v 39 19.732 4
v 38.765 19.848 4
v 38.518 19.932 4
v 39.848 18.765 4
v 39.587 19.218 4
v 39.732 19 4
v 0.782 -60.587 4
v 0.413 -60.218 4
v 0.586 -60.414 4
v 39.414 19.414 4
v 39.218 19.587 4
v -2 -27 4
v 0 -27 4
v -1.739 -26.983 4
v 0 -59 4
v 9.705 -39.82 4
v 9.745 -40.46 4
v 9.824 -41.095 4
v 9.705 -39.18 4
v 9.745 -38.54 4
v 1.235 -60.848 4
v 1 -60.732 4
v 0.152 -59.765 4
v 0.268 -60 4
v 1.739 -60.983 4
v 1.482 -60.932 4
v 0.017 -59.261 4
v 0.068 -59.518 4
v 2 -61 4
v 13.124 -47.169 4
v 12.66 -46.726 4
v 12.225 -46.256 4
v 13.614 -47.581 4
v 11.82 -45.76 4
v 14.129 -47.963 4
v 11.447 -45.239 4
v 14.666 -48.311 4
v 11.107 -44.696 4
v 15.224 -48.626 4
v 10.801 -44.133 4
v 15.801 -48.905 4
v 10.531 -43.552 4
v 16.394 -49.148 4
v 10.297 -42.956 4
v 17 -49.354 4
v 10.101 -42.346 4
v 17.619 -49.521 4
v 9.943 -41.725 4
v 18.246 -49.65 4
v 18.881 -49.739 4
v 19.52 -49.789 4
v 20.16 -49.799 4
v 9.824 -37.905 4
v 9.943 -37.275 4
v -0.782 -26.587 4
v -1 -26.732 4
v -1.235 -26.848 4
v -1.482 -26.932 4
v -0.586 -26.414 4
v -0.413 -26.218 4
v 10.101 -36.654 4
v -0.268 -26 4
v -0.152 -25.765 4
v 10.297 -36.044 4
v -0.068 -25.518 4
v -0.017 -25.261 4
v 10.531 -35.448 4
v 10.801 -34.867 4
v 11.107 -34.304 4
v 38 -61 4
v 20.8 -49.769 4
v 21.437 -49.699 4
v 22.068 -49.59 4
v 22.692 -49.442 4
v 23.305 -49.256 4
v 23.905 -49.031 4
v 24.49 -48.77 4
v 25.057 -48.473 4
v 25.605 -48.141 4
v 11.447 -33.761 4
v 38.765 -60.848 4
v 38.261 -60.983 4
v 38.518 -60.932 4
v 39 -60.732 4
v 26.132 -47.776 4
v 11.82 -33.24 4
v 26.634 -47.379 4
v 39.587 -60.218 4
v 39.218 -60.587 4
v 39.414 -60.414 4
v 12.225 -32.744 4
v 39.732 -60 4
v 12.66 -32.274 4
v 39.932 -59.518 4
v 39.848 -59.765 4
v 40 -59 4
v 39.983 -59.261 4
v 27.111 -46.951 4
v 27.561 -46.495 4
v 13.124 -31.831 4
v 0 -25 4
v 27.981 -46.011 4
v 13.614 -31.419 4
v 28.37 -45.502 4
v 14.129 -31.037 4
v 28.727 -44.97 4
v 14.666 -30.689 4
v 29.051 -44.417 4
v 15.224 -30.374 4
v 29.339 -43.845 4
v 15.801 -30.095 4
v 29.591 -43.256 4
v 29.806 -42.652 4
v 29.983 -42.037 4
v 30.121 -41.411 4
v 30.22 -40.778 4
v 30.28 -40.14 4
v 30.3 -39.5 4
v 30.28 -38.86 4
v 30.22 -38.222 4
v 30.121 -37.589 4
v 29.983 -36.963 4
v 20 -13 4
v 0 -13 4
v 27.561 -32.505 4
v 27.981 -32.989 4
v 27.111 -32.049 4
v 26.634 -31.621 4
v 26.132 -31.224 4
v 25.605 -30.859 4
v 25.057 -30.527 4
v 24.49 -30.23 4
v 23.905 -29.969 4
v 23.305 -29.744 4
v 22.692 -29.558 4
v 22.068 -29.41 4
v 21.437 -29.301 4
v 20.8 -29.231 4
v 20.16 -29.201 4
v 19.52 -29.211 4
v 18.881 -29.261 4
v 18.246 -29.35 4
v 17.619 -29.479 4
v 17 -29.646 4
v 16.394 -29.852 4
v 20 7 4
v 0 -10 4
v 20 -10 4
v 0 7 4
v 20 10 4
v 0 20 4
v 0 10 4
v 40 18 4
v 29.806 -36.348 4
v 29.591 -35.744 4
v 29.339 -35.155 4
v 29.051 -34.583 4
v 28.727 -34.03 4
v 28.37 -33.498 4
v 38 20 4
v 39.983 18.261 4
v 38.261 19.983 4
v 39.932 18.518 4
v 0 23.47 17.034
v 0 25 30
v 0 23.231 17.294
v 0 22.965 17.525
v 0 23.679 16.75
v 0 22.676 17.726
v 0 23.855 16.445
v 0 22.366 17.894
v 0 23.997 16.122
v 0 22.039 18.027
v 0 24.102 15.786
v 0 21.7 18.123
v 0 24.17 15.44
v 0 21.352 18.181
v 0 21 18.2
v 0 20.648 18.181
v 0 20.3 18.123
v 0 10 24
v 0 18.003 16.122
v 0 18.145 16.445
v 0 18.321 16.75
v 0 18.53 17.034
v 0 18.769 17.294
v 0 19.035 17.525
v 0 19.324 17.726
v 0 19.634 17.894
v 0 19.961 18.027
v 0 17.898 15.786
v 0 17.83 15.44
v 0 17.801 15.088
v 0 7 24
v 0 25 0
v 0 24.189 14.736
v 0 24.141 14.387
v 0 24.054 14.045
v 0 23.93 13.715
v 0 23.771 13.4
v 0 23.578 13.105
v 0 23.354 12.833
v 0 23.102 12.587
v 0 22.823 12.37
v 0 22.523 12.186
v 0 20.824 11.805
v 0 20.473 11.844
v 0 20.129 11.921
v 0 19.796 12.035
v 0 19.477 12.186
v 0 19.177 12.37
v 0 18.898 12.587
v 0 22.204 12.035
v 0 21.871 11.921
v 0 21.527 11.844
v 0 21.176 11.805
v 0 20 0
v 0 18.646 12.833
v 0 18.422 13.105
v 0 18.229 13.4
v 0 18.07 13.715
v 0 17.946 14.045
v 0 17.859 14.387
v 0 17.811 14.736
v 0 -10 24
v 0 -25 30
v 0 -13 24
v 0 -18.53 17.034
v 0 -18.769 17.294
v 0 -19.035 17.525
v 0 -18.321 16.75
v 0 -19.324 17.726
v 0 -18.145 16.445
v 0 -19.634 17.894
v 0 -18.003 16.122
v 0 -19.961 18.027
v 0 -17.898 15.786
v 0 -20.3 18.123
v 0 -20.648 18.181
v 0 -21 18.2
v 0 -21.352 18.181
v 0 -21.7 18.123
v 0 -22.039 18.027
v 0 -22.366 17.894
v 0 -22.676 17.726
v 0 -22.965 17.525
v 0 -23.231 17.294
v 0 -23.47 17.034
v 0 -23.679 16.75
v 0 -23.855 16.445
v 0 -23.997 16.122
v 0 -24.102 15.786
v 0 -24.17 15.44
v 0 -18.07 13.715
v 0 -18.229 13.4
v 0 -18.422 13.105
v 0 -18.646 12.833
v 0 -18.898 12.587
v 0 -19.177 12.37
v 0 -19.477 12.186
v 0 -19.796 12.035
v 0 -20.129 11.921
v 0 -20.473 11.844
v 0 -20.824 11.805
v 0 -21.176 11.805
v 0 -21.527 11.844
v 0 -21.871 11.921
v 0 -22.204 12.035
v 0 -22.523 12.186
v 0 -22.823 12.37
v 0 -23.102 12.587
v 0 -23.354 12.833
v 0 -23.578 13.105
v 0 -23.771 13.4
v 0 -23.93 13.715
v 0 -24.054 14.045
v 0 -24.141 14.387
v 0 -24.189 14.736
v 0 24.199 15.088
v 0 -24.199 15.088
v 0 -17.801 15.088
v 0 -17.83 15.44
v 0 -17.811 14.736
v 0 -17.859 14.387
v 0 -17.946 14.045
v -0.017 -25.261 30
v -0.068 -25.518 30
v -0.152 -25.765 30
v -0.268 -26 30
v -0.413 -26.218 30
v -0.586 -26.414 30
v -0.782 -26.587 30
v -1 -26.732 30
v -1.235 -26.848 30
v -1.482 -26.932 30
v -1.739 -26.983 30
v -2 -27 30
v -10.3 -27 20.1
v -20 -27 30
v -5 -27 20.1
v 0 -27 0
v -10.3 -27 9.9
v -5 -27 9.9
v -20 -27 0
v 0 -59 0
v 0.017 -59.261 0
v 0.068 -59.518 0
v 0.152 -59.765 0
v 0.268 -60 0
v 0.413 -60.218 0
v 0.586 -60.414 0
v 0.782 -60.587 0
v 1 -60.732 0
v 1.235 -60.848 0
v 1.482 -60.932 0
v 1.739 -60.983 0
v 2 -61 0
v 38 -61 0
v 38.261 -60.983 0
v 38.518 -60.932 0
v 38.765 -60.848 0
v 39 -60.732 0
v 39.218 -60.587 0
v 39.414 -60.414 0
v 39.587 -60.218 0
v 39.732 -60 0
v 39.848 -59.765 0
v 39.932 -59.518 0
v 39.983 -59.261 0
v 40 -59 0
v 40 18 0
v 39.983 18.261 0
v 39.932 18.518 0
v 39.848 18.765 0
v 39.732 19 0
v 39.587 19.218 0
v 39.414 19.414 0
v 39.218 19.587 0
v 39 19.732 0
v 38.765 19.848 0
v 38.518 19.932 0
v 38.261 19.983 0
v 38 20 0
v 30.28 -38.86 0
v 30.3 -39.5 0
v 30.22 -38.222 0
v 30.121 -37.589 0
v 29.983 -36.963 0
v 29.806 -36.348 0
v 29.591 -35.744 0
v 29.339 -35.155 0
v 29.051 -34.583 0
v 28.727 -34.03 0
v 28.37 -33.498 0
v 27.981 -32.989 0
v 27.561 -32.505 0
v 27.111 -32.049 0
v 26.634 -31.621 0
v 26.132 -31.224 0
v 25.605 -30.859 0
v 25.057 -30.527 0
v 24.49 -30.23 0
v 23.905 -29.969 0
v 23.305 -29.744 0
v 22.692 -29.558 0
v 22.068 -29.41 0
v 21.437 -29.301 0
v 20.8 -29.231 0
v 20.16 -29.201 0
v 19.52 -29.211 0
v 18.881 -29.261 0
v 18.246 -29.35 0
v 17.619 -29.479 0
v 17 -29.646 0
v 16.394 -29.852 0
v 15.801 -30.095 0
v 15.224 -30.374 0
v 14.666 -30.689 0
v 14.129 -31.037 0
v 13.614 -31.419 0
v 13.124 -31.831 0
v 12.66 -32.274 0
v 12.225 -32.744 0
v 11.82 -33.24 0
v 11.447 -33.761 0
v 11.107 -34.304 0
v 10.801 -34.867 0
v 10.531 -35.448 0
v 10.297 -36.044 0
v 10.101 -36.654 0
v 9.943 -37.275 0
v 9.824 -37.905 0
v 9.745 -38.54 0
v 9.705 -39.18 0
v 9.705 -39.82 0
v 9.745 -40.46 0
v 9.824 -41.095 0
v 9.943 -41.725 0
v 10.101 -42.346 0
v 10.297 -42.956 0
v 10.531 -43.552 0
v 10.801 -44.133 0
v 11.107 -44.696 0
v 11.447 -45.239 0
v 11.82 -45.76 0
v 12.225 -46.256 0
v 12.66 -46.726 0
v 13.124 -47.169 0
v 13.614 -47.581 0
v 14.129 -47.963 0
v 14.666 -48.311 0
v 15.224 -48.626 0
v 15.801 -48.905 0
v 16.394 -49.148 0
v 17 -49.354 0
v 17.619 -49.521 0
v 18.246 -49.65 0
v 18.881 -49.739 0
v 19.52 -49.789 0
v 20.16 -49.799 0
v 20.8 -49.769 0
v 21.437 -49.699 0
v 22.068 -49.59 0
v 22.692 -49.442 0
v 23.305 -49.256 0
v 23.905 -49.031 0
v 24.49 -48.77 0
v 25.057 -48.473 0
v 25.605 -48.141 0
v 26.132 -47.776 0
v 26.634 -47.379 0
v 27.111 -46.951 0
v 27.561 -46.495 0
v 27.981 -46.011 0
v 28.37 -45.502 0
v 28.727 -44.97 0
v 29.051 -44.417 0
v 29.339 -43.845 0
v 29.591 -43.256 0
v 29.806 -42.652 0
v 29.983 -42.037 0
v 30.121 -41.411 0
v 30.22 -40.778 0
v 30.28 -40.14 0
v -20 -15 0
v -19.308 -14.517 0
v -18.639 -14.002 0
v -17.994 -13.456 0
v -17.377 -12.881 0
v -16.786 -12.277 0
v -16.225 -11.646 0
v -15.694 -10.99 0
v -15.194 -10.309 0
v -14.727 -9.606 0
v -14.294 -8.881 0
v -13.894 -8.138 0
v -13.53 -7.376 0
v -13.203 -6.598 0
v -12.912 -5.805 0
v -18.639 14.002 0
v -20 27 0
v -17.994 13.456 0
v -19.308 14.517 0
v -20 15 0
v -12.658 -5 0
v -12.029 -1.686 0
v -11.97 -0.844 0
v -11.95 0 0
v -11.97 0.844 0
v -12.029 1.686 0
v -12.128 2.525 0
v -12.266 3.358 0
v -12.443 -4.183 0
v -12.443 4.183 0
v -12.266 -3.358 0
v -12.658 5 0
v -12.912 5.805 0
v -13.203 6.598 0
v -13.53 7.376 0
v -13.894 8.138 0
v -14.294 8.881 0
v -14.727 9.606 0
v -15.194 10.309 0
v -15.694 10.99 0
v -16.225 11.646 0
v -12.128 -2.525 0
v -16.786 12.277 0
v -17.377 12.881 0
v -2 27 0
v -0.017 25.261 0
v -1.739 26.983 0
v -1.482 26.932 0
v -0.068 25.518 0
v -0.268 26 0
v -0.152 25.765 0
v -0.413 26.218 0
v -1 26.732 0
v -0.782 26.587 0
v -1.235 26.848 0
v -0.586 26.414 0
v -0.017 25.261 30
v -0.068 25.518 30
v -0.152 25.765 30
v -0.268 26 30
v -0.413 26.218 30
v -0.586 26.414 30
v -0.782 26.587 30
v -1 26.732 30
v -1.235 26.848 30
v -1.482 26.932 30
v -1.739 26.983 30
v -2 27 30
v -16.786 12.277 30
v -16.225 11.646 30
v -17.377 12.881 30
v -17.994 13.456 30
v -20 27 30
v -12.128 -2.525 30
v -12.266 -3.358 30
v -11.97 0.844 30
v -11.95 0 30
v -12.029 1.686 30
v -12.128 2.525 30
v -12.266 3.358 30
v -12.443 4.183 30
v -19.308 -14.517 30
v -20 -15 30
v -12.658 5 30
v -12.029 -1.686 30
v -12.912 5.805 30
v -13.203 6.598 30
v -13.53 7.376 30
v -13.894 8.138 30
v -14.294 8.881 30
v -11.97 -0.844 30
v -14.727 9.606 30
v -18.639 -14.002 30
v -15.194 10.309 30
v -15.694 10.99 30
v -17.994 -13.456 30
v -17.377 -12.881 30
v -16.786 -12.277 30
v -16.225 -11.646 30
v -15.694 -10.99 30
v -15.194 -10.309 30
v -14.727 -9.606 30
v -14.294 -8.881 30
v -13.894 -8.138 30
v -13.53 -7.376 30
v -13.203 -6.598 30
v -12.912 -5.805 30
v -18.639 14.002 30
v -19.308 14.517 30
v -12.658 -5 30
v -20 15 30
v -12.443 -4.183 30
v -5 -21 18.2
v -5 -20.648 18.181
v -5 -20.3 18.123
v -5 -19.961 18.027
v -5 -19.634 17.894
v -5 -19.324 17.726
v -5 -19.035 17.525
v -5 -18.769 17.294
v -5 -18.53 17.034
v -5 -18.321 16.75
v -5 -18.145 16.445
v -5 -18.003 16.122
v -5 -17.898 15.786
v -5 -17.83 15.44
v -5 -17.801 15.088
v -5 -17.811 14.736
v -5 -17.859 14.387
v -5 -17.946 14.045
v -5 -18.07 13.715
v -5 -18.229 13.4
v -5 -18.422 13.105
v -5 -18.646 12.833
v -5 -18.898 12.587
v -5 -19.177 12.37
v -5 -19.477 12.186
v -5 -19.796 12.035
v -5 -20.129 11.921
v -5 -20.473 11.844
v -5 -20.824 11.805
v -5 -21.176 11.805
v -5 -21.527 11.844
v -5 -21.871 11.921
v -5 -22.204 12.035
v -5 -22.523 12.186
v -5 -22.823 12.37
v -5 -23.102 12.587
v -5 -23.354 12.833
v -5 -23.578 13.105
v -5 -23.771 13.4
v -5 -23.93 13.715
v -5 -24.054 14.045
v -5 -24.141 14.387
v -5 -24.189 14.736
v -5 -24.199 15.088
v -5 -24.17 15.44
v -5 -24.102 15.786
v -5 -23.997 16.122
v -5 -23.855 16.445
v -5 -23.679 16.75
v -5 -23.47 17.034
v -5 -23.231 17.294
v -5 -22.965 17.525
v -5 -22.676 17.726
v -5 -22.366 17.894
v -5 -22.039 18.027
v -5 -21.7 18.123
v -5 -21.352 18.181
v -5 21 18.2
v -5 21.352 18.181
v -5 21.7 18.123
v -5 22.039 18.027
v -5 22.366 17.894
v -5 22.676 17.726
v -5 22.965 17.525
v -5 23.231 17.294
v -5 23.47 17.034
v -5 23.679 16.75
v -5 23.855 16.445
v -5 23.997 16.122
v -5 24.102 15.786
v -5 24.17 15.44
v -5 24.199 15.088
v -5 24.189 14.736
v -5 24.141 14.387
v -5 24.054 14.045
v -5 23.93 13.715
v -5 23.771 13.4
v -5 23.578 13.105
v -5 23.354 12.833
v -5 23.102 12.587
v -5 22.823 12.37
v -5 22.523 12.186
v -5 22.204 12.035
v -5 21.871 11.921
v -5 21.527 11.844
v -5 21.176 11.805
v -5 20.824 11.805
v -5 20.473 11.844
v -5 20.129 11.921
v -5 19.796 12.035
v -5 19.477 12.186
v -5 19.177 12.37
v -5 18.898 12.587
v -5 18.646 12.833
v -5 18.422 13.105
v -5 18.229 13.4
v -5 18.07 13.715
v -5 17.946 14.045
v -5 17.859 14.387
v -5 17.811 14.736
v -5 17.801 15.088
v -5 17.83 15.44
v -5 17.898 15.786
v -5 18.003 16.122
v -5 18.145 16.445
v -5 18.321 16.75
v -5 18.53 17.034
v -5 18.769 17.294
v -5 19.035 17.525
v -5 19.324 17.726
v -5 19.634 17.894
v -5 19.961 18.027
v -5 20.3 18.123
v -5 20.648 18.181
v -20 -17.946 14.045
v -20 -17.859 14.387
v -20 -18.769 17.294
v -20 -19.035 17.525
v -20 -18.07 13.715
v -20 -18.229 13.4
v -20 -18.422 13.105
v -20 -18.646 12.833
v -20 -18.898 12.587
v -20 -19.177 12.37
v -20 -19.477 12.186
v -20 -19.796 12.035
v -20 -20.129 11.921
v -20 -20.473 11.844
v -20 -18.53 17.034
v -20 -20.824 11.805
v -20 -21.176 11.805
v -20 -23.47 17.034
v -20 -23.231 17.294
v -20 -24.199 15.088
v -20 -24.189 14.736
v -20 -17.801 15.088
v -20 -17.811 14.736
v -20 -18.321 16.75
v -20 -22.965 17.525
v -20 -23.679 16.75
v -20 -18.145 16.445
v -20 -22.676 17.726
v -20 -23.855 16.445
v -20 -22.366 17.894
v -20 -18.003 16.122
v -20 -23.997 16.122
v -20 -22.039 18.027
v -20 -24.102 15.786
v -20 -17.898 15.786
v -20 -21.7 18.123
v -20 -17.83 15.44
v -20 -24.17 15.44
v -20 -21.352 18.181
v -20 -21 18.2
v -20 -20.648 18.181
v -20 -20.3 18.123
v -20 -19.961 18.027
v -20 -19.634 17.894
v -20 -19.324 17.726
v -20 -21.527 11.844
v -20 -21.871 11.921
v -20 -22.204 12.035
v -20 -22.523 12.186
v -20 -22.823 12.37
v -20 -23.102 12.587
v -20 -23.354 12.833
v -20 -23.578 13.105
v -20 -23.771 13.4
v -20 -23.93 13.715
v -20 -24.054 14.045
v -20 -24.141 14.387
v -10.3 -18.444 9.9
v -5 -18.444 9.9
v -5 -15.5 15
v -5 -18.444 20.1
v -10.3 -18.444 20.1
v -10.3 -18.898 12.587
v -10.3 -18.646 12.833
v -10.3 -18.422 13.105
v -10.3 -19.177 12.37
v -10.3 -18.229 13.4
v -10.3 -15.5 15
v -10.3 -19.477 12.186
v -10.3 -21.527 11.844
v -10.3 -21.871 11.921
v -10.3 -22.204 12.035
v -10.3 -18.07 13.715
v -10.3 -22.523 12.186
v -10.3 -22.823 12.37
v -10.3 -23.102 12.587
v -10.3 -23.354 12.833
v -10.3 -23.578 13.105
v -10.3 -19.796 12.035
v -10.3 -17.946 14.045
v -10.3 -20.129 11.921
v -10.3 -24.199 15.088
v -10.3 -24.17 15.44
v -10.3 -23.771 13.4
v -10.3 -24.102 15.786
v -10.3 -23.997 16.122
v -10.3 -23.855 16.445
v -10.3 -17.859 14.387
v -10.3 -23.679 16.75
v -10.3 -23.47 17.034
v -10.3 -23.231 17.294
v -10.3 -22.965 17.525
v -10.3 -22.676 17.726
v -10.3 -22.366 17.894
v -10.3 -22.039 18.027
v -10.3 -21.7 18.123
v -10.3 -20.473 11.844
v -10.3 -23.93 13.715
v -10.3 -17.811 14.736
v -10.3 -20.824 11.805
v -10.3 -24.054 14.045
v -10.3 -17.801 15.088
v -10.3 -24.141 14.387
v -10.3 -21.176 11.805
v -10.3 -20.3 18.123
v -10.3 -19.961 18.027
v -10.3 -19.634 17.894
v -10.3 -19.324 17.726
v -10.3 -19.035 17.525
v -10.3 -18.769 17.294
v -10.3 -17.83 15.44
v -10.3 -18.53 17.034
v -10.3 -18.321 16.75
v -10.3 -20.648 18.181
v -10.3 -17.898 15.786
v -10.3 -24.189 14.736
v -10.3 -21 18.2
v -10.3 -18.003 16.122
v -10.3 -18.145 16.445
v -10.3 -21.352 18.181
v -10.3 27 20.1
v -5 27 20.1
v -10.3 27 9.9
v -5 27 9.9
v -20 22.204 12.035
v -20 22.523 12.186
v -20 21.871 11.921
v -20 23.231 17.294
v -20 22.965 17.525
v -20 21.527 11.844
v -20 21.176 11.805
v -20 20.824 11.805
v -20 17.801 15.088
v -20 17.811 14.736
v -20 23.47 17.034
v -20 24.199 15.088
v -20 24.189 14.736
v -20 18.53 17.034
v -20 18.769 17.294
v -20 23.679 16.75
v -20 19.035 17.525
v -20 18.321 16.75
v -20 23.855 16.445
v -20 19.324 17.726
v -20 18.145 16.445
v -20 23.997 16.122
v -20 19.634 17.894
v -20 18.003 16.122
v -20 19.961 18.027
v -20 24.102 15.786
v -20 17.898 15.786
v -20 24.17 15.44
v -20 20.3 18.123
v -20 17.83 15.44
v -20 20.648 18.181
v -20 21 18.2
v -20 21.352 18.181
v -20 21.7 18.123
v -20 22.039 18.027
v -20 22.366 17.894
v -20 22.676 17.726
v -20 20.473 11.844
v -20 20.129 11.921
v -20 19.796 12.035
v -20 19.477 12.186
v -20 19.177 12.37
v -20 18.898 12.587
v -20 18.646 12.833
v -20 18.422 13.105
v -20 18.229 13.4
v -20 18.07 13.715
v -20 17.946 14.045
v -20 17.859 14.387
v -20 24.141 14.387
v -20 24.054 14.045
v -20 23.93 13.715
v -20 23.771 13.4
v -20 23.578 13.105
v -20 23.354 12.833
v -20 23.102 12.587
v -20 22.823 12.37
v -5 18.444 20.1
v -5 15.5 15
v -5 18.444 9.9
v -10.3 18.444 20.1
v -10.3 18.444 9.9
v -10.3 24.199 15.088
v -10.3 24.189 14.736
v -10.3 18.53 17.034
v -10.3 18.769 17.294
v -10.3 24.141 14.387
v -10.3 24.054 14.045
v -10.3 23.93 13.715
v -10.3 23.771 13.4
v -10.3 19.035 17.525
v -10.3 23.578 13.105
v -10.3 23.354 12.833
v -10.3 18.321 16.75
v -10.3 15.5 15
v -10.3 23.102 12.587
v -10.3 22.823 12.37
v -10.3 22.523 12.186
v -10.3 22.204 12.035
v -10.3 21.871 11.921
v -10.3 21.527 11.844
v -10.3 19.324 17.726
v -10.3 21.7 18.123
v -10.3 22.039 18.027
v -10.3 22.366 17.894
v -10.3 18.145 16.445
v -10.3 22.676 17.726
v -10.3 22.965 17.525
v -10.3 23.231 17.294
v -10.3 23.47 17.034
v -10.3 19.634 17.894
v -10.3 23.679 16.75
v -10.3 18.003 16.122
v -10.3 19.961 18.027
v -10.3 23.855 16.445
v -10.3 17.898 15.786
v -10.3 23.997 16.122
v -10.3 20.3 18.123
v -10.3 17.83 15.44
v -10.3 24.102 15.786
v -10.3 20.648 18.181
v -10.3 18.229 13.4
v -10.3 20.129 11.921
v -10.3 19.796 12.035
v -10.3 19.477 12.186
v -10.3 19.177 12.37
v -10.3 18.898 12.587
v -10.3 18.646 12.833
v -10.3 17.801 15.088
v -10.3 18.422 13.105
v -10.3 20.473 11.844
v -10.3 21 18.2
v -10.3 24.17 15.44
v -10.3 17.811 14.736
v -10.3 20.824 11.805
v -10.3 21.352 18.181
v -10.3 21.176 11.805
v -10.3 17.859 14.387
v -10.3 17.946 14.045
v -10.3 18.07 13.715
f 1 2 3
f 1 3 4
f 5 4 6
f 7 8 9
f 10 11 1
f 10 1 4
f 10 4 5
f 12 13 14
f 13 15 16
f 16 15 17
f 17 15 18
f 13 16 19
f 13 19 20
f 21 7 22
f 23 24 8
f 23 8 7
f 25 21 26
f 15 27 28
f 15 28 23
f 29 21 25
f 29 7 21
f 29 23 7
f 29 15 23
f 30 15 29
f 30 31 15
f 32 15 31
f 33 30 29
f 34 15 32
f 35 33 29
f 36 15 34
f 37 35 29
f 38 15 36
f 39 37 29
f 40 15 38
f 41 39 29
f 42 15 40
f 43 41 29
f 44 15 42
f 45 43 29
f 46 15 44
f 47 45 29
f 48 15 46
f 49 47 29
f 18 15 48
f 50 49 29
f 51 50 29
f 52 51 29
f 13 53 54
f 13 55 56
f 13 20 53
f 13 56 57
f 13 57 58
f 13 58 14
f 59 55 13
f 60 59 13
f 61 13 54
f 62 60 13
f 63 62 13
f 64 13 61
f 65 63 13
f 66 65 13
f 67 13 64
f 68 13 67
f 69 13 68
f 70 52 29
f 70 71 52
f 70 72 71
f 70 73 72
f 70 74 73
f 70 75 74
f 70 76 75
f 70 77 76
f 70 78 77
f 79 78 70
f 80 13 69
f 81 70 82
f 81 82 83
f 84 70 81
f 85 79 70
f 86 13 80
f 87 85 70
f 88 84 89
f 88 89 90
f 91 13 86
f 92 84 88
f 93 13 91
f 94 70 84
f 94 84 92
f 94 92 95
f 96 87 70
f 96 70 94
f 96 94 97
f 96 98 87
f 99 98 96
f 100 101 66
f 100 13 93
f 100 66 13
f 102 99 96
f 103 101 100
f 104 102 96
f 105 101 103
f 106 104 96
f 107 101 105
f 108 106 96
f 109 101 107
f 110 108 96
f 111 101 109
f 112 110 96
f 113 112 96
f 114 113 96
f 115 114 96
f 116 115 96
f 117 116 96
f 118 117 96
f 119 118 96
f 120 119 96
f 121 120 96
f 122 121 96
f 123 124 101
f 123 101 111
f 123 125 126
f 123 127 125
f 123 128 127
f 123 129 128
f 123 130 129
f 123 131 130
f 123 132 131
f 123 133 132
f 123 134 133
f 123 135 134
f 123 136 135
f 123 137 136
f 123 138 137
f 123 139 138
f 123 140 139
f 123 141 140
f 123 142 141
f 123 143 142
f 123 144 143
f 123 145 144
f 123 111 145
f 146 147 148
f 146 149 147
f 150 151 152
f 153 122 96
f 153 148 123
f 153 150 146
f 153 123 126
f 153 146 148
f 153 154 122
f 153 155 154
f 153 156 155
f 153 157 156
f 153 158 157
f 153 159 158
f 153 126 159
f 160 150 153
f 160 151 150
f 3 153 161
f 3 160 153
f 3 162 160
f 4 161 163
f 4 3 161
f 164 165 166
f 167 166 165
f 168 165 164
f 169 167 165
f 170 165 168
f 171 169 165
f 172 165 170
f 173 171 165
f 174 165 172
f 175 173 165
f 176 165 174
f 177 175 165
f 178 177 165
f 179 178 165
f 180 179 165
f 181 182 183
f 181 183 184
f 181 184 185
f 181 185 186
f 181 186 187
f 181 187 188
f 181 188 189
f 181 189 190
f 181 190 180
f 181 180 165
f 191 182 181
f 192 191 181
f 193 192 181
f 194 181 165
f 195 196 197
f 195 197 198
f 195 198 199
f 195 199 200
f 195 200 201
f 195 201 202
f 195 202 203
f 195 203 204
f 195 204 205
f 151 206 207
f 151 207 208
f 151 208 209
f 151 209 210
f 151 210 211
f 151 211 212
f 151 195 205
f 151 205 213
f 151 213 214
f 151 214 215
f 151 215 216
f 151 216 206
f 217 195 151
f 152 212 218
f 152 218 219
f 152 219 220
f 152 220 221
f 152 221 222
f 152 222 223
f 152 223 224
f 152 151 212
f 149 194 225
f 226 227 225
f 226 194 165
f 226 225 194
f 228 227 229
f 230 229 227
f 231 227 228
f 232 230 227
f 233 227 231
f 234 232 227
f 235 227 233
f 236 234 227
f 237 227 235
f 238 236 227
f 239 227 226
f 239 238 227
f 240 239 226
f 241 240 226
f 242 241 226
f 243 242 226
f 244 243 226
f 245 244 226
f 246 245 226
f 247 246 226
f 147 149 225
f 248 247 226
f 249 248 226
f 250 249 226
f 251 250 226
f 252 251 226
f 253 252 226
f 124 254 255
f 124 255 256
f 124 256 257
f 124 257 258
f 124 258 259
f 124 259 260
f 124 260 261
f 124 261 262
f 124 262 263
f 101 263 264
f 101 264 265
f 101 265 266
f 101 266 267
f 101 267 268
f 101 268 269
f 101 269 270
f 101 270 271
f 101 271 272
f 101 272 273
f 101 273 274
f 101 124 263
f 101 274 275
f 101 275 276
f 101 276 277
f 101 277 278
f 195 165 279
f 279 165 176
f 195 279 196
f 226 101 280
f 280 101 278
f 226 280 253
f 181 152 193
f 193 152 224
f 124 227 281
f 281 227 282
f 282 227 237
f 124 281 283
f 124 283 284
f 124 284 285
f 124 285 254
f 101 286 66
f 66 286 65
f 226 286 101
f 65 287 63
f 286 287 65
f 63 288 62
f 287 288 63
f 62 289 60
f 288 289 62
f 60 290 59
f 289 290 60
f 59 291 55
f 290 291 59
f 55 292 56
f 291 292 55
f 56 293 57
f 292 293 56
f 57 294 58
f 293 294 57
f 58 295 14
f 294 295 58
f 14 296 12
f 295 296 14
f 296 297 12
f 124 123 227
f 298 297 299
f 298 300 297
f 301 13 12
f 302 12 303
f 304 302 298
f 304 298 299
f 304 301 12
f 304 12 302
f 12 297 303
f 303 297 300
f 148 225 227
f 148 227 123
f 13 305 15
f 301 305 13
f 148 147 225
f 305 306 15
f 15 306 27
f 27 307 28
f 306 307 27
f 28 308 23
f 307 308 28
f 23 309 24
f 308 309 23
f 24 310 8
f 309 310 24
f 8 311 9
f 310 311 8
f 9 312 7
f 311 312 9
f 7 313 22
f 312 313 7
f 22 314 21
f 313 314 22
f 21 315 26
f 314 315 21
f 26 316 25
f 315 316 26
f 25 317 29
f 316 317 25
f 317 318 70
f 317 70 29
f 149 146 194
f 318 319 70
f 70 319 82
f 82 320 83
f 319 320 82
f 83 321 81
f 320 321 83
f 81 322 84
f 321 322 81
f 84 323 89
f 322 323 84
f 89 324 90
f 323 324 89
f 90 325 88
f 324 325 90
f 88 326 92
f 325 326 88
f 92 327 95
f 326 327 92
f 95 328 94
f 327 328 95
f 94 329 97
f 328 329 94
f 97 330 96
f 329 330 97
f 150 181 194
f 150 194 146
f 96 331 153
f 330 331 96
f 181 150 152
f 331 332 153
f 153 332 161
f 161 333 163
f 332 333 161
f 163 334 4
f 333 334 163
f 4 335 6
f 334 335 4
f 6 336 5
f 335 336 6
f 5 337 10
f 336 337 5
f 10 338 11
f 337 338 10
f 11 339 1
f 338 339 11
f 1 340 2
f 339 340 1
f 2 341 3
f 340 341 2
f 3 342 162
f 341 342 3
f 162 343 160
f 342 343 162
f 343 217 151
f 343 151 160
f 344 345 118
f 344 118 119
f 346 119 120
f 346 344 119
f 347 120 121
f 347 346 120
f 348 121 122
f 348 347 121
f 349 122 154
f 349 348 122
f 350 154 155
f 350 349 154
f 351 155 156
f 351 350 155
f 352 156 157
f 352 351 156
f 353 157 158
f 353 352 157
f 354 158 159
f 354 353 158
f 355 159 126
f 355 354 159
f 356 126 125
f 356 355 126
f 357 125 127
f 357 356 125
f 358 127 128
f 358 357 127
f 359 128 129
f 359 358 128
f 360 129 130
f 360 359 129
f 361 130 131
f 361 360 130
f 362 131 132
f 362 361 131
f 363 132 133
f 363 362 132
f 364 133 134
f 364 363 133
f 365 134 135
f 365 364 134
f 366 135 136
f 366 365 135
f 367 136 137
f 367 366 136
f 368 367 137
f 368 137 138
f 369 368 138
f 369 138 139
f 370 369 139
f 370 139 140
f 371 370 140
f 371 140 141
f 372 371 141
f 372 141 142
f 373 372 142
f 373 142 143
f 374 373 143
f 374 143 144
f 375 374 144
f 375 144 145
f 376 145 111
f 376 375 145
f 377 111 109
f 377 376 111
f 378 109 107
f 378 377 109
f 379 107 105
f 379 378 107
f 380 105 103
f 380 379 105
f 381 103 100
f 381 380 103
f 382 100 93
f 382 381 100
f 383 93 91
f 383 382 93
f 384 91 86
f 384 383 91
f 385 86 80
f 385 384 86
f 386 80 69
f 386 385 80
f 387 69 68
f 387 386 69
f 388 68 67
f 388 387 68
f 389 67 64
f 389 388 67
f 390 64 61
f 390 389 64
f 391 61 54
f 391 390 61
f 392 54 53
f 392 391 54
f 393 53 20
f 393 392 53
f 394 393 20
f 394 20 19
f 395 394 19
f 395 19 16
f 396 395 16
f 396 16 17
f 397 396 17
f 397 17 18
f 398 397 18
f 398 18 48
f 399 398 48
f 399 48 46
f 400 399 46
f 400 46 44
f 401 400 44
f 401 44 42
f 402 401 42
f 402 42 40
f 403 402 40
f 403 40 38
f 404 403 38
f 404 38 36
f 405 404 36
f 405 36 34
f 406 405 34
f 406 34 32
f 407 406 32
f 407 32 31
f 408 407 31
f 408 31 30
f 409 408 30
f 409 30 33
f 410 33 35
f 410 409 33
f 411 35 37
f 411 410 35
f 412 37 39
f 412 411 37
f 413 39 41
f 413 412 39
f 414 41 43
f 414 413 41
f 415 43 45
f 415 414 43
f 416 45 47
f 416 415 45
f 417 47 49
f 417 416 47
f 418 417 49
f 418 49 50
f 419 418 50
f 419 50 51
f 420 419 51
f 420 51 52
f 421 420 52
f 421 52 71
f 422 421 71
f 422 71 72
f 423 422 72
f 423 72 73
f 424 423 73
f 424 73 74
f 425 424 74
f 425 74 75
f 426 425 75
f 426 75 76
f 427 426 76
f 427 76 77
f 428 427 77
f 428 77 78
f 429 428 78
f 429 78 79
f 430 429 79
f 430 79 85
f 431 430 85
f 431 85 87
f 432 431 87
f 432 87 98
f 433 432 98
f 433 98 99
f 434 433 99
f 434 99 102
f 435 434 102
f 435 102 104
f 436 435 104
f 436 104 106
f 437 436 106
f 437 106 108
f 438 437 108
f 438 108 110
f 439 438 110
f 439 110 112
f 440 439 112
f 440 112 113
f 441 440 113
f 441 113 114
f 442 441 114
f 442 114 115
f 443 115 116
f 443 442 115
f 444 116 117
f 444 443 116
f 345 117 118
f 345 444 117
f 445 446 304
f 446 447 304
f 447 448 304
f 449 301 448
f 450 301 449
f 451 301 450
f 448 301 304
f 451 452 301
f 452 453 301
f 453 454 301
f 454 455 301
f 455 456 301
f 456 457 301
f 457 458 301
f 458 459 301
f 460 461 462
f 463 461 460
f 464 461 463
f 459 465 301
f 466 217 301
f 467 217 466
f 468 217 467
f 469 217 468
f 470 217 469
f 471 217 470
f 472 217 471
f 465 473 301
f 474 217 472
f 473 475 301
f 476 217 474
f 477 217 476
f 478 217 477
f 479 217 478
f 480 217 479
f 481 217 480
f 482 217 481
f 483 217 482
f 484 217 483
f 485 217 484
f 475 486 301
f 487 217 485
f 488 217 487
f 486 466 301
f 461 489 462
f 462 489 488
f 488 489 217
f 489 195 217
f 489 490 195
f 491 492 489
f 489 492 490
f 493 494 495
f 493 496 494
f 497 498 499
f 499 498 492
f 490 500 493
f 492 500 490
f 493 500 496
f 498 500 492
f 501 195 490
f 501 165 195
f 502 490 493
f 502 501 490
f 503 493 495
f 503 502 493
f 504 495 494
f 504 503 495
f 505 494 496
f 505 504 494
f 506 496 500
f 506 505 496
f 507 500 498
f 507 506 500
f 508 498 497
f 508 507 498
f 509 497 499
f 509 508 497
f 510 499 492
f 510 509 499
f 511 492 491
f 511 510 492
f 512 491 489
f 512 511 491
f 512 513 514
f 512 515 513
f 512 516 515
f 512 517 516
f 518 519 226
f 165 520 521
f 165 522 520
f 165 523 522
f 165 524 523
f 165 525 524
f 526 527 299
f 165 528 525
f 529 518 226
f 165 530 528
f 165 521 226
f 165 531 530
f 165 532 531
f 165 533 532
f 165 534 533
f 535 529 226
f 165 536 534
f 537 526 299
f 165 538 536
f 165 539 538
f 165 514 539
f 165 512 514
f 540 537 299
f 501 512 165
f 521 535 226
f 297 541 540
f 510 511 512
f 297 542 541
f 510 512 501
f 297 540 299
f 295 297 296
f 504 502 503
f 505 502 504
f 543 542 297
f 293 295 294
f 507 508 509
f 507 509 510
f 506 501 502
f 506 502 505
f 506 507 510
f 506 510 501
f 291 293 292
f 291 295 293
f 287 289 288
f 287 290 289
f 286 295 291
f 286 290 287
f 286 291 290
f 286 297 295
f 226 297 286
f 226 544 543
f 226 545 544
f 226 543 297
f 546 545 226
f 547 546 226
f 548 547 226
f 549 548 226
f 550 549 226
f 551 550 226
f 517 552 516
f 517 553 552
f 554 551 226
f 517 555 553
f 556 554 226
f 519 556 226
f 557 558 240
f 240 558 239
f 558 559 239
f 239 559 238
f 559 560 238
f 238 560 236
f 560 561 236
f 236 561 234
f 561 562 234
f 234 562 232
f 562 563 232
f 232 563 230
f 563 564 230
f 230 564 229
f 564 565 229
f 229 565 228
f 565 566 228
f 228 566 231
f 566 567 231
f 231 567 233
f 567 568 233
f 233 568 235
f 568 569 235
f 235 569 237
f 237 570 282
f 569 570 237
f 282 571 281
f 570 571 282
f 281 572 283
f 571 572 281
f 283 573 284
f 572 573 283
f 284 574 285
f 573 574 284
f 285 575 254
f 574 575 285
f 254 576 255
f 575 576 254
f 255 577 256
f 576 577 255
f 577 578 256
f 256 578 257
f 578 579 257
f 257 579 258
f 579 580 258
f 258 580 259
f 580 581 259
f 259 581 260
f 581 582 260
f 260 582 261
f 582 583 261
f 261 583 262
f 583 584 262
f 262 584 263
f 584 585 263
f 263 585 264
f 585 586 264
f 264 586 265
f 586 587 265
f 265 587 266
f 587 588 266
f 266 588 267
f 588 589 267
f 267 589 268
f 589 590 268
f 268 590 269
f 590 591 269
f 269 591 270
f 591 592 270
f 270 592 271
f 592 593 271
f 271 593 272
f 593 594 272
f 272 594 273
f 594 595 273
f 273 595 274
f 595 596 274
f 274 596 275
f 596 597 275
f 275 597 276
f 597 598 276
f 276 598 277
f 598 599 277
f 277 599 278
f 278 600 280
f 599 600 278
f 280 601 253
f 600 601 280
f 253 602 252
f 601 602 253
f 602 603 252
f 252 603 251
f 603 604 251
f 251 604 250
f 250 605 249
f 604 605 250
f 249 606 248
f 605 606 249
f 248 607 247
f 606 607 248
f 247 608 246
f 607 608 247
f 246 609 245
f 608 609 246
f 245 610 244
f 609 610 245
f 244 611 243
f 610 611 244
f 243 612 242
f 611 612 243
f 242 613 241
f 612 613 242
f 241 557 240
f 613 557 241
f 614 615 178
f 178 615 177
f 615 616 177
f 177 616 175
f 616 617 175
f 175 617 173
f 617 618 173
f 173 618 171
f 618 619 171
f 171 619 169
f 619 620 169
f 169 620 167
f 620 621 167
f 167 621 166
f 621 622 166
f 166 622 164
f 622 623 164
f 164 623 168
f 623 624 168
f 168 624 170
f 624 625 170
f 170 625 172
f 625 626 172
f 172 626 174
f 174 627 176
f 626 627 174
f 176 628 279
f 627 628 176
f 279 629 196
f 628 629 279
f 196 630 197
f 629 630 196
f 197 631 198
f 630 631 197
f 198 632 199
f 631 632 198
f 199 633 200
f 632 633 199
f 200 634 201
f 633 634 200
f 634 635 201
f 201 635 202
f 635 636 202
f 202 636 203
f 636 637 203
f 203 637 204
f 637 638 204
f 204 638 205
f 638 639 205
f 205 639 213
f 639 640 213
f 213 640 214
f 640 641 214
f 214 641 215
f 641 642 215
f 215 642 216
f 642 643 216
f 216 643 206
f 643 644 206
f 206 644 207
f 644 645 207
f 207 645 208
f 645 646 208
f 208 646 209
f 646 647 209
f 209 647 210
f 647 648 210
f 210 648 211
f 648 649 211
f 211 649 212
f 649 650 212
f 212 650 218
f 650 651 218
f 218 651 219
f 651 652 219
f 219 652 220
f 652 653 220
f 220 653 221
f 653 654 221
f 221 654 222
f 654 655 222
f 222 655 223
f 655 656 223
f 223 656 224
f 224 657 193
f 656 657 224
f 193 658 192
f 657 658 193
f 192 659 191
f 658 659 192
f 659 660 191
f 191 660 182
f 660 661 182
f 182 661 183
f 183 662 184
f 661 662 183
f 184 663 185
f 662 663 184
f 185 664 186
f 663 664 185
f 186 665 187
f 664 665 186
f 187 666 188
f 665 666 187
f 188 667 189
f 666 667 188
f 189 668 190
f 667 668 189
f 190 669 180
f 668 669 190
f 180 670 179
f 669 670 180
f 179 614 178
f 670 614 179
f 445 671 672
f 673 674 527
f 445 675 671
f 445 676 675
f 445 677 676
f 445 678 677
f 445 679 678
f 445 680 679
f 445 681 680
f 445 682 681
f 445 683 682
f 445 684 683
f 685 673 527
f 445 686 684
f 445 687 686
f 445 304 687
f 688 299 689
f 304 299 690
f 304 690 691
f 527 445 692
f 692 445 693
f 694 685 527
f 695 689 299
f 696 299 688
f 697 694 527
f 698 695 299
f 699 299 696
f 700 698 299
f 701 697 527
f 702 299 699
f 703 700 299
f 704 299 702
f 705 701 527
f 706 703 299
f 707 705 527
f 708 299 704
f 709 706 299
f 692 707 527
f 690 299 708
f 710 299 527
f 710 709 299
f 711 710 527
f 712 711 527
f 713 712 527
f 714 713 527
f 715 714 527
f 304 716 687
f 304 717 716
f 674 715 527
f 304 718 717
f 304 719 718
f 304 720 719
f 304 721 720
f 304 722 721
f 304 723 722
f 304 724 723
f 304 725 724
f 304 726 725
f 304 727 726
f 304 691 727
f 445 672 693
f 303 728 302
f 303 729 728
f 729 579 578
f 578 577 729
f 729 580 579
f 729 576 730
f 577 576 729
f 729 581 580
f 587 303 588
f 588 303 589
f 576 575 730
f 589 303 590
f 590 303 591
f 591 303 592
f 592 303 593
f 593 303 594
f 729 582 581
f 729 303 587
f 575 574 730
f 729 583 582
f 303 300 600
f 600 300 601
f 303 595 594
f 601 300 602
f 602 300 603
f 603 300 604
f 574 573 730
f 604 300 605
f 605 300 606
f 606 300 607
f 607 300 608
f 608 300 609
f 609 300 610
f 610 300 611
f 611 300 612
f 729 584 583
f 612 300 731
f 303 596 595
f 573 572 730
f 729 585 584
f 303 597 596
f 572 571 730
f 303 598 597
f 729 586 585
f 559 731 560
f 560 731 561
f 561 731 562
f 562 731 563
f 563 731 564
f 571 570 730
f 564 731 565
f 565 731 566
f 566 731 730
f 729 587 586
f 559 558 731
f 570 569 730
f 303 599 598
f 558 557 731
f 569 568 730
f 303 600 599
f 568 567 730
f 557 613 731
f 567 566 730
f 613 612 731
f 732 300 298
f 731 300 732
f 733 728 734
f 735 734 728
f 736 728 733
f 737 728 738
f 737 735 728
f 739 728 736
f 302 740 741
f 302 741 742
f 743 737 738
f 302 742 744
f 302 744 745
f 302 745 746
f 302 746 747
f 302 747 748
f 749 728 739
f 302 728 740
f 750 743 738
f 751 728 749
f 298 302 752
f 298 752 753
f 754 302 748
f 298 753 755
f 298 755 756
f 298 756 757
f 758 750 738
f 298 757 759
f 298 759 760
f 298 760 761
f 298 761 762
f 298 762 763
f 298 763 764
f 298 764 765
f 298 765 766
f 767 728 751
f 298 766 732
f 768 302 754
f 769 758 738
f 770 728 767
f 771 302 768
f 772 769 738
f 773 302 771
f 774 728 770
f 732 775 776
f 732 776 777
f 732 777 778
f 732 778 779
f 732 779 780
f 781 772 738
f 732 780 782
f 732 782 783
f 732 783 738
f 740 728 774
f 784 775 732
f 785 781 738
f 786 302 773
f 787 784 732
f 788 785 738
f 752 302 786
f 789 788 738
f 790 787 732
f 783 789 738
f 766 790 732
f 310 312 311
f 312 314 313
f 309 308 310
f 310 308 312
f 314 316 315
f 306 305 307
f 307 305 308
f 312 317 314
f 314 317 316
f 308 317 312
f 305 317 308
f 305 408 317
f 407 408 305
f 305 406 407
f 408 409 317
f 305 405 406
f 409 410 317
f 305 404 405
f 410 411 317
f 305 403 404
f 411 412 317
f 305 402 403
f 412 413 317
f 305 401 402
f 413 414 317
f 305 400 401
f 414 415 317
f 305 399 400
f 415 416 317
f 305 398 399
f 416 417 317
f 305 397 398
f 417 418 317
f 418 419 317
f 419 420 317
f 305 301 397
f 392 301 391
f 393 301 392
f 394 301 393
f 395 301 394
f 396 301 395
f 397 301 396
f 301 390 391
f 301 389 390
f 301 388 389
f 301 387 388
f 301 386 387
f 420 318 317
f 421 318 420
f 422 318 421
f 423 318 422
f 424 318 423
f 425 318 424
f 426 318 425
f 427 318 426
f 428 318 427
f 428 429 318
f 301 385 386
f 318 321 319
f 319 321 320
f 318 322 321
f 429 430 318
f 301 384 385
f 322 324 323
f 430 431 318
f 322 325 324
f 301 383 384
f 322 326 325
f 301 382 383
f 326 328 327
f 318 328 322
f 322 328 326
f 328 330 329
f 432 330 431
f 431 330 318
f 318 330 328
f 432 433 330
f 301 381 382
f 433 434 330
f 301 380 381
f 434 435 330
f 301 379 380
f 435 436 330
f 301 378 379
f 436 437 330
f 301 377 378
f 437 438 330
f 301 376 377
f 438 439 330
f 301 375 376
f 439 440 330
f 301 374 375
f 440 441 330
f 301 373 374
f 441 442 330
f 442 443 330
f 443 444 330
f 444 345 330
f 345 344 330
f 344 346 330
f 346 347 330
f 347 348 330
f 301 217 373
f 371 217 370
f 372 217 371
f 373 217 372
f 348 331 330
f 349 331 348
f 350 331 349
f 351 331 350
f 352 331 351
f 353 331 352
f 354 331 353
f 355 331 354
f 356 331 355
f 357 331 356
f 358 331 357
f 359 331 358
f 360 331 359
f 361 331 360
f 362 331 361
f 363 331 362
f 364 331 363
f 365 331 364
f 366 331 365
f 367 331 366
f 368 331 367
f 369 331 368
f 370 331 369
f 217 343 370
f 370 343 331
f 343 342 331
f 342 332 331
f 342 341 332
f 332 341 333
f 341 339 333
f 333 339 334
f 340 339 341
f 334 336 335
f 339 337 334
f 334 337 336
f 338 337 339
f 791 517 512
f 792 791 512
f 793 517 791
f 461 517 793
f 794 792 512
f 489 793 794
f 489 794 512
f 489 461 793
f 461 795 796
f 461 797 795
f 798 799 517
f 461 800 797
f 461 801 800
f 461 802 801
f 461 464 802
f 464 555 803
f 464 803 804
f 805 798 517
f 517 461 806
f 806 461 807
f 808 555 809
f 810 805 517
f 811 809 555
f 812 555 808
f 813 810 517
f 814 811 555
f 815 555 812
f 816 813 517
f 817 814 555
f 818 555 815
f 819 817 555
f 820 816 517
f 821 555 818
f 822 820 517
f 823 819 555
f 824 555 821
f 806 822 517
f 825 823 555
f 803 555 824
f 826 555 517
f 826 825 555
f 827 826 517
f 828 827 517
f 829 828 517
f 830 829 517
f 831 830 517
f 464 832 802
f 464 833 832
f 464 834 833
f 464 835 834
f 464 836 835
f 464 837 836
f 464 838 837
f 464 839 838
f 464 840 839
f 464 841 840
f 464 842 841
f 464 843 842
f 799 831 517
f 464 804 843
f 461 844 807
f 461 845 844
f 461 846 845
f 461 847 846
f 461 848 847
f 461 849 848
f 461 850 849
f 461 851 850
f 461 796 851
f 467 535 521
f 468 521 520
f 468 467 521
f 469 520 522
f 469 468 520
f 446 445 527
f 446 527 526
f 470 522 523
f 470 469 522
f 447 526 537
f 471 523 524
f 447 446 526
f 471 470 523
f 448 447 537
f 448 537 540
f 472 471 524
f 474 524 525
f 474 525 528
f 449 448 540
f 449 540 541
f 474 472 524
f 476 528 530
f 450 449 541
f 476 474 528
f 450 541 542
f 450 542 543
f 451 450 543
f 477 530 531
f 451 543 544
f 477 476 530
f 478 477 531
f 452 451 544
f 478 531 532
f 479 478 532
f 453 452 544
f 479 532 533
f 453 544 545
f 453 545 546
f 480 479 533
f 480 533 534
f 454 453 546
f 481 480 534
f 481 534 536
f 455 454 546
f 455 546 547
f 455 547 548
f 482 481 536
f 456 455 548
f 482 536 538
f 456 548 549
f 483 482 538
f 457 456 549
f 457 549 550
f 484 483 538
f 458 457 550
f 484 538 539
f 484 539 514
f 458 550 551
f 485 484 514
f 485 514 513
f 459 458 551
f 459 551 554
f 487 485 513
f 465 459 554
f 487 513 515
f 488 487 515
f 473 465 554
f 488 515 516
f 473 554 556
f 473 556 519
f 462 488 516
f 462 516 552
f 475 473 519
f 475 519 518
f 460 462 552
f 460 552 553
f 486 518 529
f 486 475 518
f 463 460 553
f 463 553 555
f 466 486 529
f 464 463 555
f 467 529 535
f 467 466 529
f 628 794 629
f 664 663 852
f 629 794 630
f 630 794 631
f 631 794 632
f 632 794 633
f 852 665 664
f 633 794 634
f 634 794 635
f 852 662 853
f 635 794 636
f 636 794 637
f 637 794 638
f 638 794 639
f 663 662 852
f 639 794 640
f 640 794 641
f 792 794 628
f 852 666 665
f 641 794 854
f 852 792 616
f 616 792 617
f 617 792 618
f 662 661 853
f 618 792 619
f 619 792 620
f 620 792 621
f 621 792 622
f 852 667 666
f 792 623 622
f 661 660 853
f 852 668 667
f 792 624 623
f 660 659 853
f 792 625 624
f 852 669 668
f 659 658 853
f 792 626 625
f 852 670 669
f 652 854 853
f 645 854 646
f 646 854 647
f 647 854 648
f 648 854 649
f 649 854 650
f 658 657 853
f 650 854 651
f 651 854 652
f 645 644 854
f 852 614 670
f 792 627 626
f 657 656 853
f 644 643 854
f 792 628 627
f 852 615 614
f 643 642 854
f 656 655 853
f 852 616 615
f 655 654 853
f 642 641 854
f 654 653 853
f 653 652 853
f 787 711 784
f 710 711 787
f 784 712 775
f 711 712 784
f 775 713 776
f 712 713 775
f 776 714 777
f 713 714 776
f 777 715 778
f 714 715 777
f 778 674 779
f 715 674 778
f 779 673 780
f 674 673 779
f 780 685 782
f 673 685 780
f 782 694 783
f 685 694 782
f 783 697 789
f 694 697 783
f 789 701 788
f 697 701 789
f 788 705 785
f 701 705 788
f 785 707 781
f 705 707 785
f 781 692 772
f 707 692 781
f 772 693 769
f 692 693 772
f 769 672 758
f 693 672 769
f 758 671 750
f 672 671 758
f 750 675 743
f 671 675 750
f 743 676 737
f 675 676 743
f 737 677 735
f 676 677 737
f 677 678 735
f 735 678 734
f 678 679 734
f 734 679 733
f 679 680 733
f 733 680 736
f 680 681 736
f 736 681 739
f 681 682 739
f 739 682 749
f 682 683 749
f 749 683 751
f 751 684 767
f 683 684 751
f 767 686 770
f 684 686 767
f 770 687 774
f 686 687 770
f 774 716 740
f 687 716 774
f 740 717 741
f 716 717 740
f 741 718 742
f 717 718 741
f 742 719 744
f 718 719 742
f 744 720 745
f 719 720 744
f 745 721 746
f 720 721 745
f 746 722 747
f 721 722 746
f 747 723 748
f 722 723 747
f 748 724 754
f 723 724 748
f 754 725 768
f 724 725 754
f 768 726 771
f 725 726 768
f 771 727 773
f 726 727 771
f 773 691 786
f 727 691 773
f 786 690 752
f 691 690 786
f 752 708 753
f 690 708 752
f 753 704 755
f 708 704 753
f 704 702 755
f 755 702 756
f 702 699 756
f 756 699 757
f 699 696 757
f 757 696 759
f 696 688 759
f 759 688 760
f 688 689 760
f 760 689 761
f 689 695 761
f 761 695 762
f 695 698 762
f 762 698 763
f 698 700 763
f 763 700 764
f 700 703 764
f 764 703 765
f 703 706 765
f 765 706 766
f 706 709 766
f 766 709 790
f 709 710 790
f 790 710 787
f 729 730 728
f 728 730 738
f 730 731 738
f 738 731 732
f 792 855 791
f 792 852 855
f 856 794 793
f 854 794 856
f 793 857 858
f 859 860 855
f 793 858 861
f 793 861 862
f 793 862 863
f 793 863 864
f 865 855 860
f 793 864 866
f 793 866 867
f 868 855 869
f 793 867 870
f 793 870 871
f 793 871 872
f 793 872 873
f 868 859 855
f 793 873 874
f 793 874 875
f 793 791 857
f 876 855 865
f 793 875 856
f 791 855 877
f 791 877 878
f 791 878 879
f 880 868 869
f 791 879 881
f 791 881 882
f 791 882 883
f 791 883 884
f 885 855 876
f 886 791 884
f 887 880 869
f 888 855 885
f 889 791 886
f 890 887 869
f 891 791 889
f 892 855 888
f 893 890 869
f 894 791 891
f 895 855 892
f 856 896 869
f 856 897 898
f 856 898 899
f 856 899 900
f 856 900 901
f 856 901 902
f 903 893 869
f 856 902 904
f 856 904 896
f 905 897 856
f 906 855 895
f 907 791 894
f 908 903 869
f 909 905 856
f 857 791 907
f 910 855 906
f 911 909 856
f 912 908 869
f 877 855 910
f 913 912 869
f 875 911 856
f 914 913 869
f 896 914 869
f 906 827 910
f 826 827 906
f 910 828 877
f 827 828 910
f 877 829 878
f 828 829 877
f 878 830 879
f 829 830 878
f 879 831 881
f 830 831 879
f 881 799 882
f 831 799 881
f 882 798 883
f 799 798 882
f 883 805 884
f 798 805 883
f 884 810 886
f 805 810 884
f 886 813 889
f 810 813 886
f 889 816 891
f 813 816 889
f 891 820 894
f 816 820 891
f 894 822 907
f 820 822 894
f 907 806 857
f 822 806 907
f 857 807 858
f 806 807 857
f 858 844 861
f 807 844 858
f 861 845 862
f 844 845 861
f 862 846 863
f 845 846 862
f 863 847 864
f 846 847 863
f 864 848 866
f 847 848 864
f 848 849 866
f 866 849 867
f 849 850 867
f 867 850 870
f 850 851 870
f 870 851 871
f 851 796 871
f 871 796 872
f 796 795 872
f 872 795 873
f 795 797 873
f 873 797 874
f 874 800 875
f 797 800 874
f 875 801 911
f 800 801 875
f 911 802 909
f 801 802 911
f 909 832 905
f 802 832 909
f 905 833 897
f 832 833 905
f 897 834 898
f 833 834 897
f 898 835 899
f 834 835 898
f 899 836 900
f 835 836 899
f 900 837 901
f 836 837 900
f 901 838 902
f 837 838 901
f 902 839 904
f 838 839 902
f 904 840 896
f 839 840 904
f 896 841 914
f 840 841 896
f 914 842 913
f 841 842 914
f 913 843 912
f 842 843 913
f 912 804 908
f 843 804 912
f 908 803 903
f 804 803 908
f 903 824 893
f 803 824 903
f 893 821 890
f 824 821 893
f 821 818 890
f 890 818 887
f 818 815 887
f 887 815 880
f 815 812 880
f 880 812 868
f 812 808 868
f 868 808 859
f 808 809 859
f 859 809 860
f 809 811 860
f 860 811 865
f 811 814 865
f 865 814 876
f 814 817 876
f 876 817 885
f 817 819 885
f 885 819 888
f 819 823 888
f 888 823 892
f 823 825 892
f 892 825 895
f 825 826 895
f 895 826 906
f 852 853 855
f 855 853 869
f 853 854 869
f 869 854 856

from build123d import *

# Parameters (mm, degrees)
CYLINDER_R               = 3.2
CYLINDER_DEPTH           = 30
EXTRUDE004_DEPTH         = 5.3
CLONE002_PLACEMENT_ANGLE = 180
EXTRUDE002_DEPTH         = 30
EXTRUDE003_DEPTH         = 3
SKETCH_R                 = 10.3
EXTRUDE_DEPTH            = 4
FILLET_R                 = 2


with BuildPart() as bohrung:
    # Cylinder → Cylinder (new body)
    with BuildSketch(Plane(origin=(0, -21, 15), x_dir=(0, 0, 1), z_dir=(-1, 0, 0))):
        Circle(CYLINDER_R)
    extrude(amount=CYLINDER_DEPTH)


with BuildPart() as bohrung001:
    # Clone base: copy of Bohrung
    add(bohrung.part)


with BuildPart() as bohrung001_1:
    # Clone placement: moved
    add(bohrung001.part.moved(Location((0, 42, 0))))


with BuildPart() as ausschnitt_m6:
    # Sketch004 → Extrude004 (new body)
    with BuildSketch(Plane(origin=(0, 0, 0), x_dir=(0, -1, 0), z_dir=(-1, 0, 0))):
        Polygon((15.5, 15), (18.444486, 20.1), (30.444486, 20.1), (30.444486, 9.9), (18.444486, 9.9), align=None)
    extrude(amount=EXTRUDE004_DEPTH)


with BuildPart() as ausschnitt_m6_1:
    # Extrude004 placement: moved
    add(ausschnitt_m6.part.moved(Location((-5, 0, 0))))


with BuildPart() as ausschnitt_m007:
    # Clone002 base: copy of Ausschnitt_M6
    add(ausschnitt_m6_1.part)


with BuildPart() as ausschnitt_m007_1:
    # Clone002 placement: moved
    add(ausschnitt_m007.part.moved(Location((0, 0, 30))).rotate(Axis((0, 0, 30), (1, 0, 0)), CLONE002_PLACEMENT_ANGLE))


with BuildPart() as ausschnitte:
    # Fusion base: copy of Bohrung
    add(bohrung.part)

    # Fusion: union Bohrung001, Ausschnitt_M007, Ausschnitt_M6
    add(bohrung001_1.part)
    add(ausschnitt_m007_1.part)
    add(ausschnitt_m6_1.part)


with BuildPart() as encloser_mastbefestigung:
    # Sketch002 → Extrude002 (new body)
    with BuildSketch(Plane.XY):
        with BuildLine():
            Line((-20, 27), (0, 27))
            Line((0, 27), (0, -27))
            Line((0, -27), (-20, -27))
            Line((-20, -27), (-20, -15))
            ThreePointArc((-20, -15), (-11.949874, 0), (-20, 15))
            Line((-20, 15), (-20, 27))
        make_face()
    extrude(amount=EXTRUDE002_DEPTH)


with BuildPart() as winkel:
    # Sketch003 → Extrude003 (new body)
    with BuildSketch(Plane.XZ):
        Polygon((0, 24), (20, 4), (0, 4), align=None)
    extrude(amount=EXTRUDE003_DEPTH)


with BuildPart() as winkel_1:
    # Extrude003 placement: moved
    add(winkel.part.moved(Location((0, -10, 0))))


with BuildPart() as winkel001:
    # Clone001 base: copy of Winkel
    add(winkel_1.part)


with BuildPart() as winkel001_1:
    # Clone001 placement: moved
    add(winkel001.part.moved(Location((0, 20, 0))))


with BuildPart() as encloser_halter:
    # Sketch → Extrude (new body)
    with BuildSketch(Plane.XY):
        with BuildLine():
            Line((38, 0), (2, 0))
            ThreePointArc((0, 2), (0.585786, 0.585786), (2, 0))
            Line((0, 2), (0, 81))
            Line((0, 81), (38, 81))
            ThreePointArc((40, 79), (39.414214, 80.414214), (38, 81))
            Line((40, 79), (40, 2))
            ThreePointArc((38, 0), (39.414214, 0.585786), (40, 2))
        make_face()
        with Locations((20, 21.5)):
            Circle(SKETCH_R, mode=Mode.SUBTRACT)
    extrude(amount=EXTRUDE_DEPTH)


with BuildPart() as encloser_halter_1:
    # Extrude placement: moved
    add(encloser_halter.part.moved(Location((0, -61, 0))))

    # Fusion001: union encloser_mastbefestigung, Winkel, Winkel001
    add(encloser_mastbefestigung.part)
    add(winkel_1.part)
    add(winkel001_1.part)

    # Fillet
    fillet_edges = [encloser_halter_1.edges().sort_by_distance(p)[0] for p in [
        (0, -27, 17),
        (0, 27, 15),
    ]]
    fillet(fillet_edges, radius=FILLET_R)

    # Cut: cut Ausschnitte
    add(ausschnitte.part, mode=Mode.SUBTRACT)


solid = encloser_halter_1.part
